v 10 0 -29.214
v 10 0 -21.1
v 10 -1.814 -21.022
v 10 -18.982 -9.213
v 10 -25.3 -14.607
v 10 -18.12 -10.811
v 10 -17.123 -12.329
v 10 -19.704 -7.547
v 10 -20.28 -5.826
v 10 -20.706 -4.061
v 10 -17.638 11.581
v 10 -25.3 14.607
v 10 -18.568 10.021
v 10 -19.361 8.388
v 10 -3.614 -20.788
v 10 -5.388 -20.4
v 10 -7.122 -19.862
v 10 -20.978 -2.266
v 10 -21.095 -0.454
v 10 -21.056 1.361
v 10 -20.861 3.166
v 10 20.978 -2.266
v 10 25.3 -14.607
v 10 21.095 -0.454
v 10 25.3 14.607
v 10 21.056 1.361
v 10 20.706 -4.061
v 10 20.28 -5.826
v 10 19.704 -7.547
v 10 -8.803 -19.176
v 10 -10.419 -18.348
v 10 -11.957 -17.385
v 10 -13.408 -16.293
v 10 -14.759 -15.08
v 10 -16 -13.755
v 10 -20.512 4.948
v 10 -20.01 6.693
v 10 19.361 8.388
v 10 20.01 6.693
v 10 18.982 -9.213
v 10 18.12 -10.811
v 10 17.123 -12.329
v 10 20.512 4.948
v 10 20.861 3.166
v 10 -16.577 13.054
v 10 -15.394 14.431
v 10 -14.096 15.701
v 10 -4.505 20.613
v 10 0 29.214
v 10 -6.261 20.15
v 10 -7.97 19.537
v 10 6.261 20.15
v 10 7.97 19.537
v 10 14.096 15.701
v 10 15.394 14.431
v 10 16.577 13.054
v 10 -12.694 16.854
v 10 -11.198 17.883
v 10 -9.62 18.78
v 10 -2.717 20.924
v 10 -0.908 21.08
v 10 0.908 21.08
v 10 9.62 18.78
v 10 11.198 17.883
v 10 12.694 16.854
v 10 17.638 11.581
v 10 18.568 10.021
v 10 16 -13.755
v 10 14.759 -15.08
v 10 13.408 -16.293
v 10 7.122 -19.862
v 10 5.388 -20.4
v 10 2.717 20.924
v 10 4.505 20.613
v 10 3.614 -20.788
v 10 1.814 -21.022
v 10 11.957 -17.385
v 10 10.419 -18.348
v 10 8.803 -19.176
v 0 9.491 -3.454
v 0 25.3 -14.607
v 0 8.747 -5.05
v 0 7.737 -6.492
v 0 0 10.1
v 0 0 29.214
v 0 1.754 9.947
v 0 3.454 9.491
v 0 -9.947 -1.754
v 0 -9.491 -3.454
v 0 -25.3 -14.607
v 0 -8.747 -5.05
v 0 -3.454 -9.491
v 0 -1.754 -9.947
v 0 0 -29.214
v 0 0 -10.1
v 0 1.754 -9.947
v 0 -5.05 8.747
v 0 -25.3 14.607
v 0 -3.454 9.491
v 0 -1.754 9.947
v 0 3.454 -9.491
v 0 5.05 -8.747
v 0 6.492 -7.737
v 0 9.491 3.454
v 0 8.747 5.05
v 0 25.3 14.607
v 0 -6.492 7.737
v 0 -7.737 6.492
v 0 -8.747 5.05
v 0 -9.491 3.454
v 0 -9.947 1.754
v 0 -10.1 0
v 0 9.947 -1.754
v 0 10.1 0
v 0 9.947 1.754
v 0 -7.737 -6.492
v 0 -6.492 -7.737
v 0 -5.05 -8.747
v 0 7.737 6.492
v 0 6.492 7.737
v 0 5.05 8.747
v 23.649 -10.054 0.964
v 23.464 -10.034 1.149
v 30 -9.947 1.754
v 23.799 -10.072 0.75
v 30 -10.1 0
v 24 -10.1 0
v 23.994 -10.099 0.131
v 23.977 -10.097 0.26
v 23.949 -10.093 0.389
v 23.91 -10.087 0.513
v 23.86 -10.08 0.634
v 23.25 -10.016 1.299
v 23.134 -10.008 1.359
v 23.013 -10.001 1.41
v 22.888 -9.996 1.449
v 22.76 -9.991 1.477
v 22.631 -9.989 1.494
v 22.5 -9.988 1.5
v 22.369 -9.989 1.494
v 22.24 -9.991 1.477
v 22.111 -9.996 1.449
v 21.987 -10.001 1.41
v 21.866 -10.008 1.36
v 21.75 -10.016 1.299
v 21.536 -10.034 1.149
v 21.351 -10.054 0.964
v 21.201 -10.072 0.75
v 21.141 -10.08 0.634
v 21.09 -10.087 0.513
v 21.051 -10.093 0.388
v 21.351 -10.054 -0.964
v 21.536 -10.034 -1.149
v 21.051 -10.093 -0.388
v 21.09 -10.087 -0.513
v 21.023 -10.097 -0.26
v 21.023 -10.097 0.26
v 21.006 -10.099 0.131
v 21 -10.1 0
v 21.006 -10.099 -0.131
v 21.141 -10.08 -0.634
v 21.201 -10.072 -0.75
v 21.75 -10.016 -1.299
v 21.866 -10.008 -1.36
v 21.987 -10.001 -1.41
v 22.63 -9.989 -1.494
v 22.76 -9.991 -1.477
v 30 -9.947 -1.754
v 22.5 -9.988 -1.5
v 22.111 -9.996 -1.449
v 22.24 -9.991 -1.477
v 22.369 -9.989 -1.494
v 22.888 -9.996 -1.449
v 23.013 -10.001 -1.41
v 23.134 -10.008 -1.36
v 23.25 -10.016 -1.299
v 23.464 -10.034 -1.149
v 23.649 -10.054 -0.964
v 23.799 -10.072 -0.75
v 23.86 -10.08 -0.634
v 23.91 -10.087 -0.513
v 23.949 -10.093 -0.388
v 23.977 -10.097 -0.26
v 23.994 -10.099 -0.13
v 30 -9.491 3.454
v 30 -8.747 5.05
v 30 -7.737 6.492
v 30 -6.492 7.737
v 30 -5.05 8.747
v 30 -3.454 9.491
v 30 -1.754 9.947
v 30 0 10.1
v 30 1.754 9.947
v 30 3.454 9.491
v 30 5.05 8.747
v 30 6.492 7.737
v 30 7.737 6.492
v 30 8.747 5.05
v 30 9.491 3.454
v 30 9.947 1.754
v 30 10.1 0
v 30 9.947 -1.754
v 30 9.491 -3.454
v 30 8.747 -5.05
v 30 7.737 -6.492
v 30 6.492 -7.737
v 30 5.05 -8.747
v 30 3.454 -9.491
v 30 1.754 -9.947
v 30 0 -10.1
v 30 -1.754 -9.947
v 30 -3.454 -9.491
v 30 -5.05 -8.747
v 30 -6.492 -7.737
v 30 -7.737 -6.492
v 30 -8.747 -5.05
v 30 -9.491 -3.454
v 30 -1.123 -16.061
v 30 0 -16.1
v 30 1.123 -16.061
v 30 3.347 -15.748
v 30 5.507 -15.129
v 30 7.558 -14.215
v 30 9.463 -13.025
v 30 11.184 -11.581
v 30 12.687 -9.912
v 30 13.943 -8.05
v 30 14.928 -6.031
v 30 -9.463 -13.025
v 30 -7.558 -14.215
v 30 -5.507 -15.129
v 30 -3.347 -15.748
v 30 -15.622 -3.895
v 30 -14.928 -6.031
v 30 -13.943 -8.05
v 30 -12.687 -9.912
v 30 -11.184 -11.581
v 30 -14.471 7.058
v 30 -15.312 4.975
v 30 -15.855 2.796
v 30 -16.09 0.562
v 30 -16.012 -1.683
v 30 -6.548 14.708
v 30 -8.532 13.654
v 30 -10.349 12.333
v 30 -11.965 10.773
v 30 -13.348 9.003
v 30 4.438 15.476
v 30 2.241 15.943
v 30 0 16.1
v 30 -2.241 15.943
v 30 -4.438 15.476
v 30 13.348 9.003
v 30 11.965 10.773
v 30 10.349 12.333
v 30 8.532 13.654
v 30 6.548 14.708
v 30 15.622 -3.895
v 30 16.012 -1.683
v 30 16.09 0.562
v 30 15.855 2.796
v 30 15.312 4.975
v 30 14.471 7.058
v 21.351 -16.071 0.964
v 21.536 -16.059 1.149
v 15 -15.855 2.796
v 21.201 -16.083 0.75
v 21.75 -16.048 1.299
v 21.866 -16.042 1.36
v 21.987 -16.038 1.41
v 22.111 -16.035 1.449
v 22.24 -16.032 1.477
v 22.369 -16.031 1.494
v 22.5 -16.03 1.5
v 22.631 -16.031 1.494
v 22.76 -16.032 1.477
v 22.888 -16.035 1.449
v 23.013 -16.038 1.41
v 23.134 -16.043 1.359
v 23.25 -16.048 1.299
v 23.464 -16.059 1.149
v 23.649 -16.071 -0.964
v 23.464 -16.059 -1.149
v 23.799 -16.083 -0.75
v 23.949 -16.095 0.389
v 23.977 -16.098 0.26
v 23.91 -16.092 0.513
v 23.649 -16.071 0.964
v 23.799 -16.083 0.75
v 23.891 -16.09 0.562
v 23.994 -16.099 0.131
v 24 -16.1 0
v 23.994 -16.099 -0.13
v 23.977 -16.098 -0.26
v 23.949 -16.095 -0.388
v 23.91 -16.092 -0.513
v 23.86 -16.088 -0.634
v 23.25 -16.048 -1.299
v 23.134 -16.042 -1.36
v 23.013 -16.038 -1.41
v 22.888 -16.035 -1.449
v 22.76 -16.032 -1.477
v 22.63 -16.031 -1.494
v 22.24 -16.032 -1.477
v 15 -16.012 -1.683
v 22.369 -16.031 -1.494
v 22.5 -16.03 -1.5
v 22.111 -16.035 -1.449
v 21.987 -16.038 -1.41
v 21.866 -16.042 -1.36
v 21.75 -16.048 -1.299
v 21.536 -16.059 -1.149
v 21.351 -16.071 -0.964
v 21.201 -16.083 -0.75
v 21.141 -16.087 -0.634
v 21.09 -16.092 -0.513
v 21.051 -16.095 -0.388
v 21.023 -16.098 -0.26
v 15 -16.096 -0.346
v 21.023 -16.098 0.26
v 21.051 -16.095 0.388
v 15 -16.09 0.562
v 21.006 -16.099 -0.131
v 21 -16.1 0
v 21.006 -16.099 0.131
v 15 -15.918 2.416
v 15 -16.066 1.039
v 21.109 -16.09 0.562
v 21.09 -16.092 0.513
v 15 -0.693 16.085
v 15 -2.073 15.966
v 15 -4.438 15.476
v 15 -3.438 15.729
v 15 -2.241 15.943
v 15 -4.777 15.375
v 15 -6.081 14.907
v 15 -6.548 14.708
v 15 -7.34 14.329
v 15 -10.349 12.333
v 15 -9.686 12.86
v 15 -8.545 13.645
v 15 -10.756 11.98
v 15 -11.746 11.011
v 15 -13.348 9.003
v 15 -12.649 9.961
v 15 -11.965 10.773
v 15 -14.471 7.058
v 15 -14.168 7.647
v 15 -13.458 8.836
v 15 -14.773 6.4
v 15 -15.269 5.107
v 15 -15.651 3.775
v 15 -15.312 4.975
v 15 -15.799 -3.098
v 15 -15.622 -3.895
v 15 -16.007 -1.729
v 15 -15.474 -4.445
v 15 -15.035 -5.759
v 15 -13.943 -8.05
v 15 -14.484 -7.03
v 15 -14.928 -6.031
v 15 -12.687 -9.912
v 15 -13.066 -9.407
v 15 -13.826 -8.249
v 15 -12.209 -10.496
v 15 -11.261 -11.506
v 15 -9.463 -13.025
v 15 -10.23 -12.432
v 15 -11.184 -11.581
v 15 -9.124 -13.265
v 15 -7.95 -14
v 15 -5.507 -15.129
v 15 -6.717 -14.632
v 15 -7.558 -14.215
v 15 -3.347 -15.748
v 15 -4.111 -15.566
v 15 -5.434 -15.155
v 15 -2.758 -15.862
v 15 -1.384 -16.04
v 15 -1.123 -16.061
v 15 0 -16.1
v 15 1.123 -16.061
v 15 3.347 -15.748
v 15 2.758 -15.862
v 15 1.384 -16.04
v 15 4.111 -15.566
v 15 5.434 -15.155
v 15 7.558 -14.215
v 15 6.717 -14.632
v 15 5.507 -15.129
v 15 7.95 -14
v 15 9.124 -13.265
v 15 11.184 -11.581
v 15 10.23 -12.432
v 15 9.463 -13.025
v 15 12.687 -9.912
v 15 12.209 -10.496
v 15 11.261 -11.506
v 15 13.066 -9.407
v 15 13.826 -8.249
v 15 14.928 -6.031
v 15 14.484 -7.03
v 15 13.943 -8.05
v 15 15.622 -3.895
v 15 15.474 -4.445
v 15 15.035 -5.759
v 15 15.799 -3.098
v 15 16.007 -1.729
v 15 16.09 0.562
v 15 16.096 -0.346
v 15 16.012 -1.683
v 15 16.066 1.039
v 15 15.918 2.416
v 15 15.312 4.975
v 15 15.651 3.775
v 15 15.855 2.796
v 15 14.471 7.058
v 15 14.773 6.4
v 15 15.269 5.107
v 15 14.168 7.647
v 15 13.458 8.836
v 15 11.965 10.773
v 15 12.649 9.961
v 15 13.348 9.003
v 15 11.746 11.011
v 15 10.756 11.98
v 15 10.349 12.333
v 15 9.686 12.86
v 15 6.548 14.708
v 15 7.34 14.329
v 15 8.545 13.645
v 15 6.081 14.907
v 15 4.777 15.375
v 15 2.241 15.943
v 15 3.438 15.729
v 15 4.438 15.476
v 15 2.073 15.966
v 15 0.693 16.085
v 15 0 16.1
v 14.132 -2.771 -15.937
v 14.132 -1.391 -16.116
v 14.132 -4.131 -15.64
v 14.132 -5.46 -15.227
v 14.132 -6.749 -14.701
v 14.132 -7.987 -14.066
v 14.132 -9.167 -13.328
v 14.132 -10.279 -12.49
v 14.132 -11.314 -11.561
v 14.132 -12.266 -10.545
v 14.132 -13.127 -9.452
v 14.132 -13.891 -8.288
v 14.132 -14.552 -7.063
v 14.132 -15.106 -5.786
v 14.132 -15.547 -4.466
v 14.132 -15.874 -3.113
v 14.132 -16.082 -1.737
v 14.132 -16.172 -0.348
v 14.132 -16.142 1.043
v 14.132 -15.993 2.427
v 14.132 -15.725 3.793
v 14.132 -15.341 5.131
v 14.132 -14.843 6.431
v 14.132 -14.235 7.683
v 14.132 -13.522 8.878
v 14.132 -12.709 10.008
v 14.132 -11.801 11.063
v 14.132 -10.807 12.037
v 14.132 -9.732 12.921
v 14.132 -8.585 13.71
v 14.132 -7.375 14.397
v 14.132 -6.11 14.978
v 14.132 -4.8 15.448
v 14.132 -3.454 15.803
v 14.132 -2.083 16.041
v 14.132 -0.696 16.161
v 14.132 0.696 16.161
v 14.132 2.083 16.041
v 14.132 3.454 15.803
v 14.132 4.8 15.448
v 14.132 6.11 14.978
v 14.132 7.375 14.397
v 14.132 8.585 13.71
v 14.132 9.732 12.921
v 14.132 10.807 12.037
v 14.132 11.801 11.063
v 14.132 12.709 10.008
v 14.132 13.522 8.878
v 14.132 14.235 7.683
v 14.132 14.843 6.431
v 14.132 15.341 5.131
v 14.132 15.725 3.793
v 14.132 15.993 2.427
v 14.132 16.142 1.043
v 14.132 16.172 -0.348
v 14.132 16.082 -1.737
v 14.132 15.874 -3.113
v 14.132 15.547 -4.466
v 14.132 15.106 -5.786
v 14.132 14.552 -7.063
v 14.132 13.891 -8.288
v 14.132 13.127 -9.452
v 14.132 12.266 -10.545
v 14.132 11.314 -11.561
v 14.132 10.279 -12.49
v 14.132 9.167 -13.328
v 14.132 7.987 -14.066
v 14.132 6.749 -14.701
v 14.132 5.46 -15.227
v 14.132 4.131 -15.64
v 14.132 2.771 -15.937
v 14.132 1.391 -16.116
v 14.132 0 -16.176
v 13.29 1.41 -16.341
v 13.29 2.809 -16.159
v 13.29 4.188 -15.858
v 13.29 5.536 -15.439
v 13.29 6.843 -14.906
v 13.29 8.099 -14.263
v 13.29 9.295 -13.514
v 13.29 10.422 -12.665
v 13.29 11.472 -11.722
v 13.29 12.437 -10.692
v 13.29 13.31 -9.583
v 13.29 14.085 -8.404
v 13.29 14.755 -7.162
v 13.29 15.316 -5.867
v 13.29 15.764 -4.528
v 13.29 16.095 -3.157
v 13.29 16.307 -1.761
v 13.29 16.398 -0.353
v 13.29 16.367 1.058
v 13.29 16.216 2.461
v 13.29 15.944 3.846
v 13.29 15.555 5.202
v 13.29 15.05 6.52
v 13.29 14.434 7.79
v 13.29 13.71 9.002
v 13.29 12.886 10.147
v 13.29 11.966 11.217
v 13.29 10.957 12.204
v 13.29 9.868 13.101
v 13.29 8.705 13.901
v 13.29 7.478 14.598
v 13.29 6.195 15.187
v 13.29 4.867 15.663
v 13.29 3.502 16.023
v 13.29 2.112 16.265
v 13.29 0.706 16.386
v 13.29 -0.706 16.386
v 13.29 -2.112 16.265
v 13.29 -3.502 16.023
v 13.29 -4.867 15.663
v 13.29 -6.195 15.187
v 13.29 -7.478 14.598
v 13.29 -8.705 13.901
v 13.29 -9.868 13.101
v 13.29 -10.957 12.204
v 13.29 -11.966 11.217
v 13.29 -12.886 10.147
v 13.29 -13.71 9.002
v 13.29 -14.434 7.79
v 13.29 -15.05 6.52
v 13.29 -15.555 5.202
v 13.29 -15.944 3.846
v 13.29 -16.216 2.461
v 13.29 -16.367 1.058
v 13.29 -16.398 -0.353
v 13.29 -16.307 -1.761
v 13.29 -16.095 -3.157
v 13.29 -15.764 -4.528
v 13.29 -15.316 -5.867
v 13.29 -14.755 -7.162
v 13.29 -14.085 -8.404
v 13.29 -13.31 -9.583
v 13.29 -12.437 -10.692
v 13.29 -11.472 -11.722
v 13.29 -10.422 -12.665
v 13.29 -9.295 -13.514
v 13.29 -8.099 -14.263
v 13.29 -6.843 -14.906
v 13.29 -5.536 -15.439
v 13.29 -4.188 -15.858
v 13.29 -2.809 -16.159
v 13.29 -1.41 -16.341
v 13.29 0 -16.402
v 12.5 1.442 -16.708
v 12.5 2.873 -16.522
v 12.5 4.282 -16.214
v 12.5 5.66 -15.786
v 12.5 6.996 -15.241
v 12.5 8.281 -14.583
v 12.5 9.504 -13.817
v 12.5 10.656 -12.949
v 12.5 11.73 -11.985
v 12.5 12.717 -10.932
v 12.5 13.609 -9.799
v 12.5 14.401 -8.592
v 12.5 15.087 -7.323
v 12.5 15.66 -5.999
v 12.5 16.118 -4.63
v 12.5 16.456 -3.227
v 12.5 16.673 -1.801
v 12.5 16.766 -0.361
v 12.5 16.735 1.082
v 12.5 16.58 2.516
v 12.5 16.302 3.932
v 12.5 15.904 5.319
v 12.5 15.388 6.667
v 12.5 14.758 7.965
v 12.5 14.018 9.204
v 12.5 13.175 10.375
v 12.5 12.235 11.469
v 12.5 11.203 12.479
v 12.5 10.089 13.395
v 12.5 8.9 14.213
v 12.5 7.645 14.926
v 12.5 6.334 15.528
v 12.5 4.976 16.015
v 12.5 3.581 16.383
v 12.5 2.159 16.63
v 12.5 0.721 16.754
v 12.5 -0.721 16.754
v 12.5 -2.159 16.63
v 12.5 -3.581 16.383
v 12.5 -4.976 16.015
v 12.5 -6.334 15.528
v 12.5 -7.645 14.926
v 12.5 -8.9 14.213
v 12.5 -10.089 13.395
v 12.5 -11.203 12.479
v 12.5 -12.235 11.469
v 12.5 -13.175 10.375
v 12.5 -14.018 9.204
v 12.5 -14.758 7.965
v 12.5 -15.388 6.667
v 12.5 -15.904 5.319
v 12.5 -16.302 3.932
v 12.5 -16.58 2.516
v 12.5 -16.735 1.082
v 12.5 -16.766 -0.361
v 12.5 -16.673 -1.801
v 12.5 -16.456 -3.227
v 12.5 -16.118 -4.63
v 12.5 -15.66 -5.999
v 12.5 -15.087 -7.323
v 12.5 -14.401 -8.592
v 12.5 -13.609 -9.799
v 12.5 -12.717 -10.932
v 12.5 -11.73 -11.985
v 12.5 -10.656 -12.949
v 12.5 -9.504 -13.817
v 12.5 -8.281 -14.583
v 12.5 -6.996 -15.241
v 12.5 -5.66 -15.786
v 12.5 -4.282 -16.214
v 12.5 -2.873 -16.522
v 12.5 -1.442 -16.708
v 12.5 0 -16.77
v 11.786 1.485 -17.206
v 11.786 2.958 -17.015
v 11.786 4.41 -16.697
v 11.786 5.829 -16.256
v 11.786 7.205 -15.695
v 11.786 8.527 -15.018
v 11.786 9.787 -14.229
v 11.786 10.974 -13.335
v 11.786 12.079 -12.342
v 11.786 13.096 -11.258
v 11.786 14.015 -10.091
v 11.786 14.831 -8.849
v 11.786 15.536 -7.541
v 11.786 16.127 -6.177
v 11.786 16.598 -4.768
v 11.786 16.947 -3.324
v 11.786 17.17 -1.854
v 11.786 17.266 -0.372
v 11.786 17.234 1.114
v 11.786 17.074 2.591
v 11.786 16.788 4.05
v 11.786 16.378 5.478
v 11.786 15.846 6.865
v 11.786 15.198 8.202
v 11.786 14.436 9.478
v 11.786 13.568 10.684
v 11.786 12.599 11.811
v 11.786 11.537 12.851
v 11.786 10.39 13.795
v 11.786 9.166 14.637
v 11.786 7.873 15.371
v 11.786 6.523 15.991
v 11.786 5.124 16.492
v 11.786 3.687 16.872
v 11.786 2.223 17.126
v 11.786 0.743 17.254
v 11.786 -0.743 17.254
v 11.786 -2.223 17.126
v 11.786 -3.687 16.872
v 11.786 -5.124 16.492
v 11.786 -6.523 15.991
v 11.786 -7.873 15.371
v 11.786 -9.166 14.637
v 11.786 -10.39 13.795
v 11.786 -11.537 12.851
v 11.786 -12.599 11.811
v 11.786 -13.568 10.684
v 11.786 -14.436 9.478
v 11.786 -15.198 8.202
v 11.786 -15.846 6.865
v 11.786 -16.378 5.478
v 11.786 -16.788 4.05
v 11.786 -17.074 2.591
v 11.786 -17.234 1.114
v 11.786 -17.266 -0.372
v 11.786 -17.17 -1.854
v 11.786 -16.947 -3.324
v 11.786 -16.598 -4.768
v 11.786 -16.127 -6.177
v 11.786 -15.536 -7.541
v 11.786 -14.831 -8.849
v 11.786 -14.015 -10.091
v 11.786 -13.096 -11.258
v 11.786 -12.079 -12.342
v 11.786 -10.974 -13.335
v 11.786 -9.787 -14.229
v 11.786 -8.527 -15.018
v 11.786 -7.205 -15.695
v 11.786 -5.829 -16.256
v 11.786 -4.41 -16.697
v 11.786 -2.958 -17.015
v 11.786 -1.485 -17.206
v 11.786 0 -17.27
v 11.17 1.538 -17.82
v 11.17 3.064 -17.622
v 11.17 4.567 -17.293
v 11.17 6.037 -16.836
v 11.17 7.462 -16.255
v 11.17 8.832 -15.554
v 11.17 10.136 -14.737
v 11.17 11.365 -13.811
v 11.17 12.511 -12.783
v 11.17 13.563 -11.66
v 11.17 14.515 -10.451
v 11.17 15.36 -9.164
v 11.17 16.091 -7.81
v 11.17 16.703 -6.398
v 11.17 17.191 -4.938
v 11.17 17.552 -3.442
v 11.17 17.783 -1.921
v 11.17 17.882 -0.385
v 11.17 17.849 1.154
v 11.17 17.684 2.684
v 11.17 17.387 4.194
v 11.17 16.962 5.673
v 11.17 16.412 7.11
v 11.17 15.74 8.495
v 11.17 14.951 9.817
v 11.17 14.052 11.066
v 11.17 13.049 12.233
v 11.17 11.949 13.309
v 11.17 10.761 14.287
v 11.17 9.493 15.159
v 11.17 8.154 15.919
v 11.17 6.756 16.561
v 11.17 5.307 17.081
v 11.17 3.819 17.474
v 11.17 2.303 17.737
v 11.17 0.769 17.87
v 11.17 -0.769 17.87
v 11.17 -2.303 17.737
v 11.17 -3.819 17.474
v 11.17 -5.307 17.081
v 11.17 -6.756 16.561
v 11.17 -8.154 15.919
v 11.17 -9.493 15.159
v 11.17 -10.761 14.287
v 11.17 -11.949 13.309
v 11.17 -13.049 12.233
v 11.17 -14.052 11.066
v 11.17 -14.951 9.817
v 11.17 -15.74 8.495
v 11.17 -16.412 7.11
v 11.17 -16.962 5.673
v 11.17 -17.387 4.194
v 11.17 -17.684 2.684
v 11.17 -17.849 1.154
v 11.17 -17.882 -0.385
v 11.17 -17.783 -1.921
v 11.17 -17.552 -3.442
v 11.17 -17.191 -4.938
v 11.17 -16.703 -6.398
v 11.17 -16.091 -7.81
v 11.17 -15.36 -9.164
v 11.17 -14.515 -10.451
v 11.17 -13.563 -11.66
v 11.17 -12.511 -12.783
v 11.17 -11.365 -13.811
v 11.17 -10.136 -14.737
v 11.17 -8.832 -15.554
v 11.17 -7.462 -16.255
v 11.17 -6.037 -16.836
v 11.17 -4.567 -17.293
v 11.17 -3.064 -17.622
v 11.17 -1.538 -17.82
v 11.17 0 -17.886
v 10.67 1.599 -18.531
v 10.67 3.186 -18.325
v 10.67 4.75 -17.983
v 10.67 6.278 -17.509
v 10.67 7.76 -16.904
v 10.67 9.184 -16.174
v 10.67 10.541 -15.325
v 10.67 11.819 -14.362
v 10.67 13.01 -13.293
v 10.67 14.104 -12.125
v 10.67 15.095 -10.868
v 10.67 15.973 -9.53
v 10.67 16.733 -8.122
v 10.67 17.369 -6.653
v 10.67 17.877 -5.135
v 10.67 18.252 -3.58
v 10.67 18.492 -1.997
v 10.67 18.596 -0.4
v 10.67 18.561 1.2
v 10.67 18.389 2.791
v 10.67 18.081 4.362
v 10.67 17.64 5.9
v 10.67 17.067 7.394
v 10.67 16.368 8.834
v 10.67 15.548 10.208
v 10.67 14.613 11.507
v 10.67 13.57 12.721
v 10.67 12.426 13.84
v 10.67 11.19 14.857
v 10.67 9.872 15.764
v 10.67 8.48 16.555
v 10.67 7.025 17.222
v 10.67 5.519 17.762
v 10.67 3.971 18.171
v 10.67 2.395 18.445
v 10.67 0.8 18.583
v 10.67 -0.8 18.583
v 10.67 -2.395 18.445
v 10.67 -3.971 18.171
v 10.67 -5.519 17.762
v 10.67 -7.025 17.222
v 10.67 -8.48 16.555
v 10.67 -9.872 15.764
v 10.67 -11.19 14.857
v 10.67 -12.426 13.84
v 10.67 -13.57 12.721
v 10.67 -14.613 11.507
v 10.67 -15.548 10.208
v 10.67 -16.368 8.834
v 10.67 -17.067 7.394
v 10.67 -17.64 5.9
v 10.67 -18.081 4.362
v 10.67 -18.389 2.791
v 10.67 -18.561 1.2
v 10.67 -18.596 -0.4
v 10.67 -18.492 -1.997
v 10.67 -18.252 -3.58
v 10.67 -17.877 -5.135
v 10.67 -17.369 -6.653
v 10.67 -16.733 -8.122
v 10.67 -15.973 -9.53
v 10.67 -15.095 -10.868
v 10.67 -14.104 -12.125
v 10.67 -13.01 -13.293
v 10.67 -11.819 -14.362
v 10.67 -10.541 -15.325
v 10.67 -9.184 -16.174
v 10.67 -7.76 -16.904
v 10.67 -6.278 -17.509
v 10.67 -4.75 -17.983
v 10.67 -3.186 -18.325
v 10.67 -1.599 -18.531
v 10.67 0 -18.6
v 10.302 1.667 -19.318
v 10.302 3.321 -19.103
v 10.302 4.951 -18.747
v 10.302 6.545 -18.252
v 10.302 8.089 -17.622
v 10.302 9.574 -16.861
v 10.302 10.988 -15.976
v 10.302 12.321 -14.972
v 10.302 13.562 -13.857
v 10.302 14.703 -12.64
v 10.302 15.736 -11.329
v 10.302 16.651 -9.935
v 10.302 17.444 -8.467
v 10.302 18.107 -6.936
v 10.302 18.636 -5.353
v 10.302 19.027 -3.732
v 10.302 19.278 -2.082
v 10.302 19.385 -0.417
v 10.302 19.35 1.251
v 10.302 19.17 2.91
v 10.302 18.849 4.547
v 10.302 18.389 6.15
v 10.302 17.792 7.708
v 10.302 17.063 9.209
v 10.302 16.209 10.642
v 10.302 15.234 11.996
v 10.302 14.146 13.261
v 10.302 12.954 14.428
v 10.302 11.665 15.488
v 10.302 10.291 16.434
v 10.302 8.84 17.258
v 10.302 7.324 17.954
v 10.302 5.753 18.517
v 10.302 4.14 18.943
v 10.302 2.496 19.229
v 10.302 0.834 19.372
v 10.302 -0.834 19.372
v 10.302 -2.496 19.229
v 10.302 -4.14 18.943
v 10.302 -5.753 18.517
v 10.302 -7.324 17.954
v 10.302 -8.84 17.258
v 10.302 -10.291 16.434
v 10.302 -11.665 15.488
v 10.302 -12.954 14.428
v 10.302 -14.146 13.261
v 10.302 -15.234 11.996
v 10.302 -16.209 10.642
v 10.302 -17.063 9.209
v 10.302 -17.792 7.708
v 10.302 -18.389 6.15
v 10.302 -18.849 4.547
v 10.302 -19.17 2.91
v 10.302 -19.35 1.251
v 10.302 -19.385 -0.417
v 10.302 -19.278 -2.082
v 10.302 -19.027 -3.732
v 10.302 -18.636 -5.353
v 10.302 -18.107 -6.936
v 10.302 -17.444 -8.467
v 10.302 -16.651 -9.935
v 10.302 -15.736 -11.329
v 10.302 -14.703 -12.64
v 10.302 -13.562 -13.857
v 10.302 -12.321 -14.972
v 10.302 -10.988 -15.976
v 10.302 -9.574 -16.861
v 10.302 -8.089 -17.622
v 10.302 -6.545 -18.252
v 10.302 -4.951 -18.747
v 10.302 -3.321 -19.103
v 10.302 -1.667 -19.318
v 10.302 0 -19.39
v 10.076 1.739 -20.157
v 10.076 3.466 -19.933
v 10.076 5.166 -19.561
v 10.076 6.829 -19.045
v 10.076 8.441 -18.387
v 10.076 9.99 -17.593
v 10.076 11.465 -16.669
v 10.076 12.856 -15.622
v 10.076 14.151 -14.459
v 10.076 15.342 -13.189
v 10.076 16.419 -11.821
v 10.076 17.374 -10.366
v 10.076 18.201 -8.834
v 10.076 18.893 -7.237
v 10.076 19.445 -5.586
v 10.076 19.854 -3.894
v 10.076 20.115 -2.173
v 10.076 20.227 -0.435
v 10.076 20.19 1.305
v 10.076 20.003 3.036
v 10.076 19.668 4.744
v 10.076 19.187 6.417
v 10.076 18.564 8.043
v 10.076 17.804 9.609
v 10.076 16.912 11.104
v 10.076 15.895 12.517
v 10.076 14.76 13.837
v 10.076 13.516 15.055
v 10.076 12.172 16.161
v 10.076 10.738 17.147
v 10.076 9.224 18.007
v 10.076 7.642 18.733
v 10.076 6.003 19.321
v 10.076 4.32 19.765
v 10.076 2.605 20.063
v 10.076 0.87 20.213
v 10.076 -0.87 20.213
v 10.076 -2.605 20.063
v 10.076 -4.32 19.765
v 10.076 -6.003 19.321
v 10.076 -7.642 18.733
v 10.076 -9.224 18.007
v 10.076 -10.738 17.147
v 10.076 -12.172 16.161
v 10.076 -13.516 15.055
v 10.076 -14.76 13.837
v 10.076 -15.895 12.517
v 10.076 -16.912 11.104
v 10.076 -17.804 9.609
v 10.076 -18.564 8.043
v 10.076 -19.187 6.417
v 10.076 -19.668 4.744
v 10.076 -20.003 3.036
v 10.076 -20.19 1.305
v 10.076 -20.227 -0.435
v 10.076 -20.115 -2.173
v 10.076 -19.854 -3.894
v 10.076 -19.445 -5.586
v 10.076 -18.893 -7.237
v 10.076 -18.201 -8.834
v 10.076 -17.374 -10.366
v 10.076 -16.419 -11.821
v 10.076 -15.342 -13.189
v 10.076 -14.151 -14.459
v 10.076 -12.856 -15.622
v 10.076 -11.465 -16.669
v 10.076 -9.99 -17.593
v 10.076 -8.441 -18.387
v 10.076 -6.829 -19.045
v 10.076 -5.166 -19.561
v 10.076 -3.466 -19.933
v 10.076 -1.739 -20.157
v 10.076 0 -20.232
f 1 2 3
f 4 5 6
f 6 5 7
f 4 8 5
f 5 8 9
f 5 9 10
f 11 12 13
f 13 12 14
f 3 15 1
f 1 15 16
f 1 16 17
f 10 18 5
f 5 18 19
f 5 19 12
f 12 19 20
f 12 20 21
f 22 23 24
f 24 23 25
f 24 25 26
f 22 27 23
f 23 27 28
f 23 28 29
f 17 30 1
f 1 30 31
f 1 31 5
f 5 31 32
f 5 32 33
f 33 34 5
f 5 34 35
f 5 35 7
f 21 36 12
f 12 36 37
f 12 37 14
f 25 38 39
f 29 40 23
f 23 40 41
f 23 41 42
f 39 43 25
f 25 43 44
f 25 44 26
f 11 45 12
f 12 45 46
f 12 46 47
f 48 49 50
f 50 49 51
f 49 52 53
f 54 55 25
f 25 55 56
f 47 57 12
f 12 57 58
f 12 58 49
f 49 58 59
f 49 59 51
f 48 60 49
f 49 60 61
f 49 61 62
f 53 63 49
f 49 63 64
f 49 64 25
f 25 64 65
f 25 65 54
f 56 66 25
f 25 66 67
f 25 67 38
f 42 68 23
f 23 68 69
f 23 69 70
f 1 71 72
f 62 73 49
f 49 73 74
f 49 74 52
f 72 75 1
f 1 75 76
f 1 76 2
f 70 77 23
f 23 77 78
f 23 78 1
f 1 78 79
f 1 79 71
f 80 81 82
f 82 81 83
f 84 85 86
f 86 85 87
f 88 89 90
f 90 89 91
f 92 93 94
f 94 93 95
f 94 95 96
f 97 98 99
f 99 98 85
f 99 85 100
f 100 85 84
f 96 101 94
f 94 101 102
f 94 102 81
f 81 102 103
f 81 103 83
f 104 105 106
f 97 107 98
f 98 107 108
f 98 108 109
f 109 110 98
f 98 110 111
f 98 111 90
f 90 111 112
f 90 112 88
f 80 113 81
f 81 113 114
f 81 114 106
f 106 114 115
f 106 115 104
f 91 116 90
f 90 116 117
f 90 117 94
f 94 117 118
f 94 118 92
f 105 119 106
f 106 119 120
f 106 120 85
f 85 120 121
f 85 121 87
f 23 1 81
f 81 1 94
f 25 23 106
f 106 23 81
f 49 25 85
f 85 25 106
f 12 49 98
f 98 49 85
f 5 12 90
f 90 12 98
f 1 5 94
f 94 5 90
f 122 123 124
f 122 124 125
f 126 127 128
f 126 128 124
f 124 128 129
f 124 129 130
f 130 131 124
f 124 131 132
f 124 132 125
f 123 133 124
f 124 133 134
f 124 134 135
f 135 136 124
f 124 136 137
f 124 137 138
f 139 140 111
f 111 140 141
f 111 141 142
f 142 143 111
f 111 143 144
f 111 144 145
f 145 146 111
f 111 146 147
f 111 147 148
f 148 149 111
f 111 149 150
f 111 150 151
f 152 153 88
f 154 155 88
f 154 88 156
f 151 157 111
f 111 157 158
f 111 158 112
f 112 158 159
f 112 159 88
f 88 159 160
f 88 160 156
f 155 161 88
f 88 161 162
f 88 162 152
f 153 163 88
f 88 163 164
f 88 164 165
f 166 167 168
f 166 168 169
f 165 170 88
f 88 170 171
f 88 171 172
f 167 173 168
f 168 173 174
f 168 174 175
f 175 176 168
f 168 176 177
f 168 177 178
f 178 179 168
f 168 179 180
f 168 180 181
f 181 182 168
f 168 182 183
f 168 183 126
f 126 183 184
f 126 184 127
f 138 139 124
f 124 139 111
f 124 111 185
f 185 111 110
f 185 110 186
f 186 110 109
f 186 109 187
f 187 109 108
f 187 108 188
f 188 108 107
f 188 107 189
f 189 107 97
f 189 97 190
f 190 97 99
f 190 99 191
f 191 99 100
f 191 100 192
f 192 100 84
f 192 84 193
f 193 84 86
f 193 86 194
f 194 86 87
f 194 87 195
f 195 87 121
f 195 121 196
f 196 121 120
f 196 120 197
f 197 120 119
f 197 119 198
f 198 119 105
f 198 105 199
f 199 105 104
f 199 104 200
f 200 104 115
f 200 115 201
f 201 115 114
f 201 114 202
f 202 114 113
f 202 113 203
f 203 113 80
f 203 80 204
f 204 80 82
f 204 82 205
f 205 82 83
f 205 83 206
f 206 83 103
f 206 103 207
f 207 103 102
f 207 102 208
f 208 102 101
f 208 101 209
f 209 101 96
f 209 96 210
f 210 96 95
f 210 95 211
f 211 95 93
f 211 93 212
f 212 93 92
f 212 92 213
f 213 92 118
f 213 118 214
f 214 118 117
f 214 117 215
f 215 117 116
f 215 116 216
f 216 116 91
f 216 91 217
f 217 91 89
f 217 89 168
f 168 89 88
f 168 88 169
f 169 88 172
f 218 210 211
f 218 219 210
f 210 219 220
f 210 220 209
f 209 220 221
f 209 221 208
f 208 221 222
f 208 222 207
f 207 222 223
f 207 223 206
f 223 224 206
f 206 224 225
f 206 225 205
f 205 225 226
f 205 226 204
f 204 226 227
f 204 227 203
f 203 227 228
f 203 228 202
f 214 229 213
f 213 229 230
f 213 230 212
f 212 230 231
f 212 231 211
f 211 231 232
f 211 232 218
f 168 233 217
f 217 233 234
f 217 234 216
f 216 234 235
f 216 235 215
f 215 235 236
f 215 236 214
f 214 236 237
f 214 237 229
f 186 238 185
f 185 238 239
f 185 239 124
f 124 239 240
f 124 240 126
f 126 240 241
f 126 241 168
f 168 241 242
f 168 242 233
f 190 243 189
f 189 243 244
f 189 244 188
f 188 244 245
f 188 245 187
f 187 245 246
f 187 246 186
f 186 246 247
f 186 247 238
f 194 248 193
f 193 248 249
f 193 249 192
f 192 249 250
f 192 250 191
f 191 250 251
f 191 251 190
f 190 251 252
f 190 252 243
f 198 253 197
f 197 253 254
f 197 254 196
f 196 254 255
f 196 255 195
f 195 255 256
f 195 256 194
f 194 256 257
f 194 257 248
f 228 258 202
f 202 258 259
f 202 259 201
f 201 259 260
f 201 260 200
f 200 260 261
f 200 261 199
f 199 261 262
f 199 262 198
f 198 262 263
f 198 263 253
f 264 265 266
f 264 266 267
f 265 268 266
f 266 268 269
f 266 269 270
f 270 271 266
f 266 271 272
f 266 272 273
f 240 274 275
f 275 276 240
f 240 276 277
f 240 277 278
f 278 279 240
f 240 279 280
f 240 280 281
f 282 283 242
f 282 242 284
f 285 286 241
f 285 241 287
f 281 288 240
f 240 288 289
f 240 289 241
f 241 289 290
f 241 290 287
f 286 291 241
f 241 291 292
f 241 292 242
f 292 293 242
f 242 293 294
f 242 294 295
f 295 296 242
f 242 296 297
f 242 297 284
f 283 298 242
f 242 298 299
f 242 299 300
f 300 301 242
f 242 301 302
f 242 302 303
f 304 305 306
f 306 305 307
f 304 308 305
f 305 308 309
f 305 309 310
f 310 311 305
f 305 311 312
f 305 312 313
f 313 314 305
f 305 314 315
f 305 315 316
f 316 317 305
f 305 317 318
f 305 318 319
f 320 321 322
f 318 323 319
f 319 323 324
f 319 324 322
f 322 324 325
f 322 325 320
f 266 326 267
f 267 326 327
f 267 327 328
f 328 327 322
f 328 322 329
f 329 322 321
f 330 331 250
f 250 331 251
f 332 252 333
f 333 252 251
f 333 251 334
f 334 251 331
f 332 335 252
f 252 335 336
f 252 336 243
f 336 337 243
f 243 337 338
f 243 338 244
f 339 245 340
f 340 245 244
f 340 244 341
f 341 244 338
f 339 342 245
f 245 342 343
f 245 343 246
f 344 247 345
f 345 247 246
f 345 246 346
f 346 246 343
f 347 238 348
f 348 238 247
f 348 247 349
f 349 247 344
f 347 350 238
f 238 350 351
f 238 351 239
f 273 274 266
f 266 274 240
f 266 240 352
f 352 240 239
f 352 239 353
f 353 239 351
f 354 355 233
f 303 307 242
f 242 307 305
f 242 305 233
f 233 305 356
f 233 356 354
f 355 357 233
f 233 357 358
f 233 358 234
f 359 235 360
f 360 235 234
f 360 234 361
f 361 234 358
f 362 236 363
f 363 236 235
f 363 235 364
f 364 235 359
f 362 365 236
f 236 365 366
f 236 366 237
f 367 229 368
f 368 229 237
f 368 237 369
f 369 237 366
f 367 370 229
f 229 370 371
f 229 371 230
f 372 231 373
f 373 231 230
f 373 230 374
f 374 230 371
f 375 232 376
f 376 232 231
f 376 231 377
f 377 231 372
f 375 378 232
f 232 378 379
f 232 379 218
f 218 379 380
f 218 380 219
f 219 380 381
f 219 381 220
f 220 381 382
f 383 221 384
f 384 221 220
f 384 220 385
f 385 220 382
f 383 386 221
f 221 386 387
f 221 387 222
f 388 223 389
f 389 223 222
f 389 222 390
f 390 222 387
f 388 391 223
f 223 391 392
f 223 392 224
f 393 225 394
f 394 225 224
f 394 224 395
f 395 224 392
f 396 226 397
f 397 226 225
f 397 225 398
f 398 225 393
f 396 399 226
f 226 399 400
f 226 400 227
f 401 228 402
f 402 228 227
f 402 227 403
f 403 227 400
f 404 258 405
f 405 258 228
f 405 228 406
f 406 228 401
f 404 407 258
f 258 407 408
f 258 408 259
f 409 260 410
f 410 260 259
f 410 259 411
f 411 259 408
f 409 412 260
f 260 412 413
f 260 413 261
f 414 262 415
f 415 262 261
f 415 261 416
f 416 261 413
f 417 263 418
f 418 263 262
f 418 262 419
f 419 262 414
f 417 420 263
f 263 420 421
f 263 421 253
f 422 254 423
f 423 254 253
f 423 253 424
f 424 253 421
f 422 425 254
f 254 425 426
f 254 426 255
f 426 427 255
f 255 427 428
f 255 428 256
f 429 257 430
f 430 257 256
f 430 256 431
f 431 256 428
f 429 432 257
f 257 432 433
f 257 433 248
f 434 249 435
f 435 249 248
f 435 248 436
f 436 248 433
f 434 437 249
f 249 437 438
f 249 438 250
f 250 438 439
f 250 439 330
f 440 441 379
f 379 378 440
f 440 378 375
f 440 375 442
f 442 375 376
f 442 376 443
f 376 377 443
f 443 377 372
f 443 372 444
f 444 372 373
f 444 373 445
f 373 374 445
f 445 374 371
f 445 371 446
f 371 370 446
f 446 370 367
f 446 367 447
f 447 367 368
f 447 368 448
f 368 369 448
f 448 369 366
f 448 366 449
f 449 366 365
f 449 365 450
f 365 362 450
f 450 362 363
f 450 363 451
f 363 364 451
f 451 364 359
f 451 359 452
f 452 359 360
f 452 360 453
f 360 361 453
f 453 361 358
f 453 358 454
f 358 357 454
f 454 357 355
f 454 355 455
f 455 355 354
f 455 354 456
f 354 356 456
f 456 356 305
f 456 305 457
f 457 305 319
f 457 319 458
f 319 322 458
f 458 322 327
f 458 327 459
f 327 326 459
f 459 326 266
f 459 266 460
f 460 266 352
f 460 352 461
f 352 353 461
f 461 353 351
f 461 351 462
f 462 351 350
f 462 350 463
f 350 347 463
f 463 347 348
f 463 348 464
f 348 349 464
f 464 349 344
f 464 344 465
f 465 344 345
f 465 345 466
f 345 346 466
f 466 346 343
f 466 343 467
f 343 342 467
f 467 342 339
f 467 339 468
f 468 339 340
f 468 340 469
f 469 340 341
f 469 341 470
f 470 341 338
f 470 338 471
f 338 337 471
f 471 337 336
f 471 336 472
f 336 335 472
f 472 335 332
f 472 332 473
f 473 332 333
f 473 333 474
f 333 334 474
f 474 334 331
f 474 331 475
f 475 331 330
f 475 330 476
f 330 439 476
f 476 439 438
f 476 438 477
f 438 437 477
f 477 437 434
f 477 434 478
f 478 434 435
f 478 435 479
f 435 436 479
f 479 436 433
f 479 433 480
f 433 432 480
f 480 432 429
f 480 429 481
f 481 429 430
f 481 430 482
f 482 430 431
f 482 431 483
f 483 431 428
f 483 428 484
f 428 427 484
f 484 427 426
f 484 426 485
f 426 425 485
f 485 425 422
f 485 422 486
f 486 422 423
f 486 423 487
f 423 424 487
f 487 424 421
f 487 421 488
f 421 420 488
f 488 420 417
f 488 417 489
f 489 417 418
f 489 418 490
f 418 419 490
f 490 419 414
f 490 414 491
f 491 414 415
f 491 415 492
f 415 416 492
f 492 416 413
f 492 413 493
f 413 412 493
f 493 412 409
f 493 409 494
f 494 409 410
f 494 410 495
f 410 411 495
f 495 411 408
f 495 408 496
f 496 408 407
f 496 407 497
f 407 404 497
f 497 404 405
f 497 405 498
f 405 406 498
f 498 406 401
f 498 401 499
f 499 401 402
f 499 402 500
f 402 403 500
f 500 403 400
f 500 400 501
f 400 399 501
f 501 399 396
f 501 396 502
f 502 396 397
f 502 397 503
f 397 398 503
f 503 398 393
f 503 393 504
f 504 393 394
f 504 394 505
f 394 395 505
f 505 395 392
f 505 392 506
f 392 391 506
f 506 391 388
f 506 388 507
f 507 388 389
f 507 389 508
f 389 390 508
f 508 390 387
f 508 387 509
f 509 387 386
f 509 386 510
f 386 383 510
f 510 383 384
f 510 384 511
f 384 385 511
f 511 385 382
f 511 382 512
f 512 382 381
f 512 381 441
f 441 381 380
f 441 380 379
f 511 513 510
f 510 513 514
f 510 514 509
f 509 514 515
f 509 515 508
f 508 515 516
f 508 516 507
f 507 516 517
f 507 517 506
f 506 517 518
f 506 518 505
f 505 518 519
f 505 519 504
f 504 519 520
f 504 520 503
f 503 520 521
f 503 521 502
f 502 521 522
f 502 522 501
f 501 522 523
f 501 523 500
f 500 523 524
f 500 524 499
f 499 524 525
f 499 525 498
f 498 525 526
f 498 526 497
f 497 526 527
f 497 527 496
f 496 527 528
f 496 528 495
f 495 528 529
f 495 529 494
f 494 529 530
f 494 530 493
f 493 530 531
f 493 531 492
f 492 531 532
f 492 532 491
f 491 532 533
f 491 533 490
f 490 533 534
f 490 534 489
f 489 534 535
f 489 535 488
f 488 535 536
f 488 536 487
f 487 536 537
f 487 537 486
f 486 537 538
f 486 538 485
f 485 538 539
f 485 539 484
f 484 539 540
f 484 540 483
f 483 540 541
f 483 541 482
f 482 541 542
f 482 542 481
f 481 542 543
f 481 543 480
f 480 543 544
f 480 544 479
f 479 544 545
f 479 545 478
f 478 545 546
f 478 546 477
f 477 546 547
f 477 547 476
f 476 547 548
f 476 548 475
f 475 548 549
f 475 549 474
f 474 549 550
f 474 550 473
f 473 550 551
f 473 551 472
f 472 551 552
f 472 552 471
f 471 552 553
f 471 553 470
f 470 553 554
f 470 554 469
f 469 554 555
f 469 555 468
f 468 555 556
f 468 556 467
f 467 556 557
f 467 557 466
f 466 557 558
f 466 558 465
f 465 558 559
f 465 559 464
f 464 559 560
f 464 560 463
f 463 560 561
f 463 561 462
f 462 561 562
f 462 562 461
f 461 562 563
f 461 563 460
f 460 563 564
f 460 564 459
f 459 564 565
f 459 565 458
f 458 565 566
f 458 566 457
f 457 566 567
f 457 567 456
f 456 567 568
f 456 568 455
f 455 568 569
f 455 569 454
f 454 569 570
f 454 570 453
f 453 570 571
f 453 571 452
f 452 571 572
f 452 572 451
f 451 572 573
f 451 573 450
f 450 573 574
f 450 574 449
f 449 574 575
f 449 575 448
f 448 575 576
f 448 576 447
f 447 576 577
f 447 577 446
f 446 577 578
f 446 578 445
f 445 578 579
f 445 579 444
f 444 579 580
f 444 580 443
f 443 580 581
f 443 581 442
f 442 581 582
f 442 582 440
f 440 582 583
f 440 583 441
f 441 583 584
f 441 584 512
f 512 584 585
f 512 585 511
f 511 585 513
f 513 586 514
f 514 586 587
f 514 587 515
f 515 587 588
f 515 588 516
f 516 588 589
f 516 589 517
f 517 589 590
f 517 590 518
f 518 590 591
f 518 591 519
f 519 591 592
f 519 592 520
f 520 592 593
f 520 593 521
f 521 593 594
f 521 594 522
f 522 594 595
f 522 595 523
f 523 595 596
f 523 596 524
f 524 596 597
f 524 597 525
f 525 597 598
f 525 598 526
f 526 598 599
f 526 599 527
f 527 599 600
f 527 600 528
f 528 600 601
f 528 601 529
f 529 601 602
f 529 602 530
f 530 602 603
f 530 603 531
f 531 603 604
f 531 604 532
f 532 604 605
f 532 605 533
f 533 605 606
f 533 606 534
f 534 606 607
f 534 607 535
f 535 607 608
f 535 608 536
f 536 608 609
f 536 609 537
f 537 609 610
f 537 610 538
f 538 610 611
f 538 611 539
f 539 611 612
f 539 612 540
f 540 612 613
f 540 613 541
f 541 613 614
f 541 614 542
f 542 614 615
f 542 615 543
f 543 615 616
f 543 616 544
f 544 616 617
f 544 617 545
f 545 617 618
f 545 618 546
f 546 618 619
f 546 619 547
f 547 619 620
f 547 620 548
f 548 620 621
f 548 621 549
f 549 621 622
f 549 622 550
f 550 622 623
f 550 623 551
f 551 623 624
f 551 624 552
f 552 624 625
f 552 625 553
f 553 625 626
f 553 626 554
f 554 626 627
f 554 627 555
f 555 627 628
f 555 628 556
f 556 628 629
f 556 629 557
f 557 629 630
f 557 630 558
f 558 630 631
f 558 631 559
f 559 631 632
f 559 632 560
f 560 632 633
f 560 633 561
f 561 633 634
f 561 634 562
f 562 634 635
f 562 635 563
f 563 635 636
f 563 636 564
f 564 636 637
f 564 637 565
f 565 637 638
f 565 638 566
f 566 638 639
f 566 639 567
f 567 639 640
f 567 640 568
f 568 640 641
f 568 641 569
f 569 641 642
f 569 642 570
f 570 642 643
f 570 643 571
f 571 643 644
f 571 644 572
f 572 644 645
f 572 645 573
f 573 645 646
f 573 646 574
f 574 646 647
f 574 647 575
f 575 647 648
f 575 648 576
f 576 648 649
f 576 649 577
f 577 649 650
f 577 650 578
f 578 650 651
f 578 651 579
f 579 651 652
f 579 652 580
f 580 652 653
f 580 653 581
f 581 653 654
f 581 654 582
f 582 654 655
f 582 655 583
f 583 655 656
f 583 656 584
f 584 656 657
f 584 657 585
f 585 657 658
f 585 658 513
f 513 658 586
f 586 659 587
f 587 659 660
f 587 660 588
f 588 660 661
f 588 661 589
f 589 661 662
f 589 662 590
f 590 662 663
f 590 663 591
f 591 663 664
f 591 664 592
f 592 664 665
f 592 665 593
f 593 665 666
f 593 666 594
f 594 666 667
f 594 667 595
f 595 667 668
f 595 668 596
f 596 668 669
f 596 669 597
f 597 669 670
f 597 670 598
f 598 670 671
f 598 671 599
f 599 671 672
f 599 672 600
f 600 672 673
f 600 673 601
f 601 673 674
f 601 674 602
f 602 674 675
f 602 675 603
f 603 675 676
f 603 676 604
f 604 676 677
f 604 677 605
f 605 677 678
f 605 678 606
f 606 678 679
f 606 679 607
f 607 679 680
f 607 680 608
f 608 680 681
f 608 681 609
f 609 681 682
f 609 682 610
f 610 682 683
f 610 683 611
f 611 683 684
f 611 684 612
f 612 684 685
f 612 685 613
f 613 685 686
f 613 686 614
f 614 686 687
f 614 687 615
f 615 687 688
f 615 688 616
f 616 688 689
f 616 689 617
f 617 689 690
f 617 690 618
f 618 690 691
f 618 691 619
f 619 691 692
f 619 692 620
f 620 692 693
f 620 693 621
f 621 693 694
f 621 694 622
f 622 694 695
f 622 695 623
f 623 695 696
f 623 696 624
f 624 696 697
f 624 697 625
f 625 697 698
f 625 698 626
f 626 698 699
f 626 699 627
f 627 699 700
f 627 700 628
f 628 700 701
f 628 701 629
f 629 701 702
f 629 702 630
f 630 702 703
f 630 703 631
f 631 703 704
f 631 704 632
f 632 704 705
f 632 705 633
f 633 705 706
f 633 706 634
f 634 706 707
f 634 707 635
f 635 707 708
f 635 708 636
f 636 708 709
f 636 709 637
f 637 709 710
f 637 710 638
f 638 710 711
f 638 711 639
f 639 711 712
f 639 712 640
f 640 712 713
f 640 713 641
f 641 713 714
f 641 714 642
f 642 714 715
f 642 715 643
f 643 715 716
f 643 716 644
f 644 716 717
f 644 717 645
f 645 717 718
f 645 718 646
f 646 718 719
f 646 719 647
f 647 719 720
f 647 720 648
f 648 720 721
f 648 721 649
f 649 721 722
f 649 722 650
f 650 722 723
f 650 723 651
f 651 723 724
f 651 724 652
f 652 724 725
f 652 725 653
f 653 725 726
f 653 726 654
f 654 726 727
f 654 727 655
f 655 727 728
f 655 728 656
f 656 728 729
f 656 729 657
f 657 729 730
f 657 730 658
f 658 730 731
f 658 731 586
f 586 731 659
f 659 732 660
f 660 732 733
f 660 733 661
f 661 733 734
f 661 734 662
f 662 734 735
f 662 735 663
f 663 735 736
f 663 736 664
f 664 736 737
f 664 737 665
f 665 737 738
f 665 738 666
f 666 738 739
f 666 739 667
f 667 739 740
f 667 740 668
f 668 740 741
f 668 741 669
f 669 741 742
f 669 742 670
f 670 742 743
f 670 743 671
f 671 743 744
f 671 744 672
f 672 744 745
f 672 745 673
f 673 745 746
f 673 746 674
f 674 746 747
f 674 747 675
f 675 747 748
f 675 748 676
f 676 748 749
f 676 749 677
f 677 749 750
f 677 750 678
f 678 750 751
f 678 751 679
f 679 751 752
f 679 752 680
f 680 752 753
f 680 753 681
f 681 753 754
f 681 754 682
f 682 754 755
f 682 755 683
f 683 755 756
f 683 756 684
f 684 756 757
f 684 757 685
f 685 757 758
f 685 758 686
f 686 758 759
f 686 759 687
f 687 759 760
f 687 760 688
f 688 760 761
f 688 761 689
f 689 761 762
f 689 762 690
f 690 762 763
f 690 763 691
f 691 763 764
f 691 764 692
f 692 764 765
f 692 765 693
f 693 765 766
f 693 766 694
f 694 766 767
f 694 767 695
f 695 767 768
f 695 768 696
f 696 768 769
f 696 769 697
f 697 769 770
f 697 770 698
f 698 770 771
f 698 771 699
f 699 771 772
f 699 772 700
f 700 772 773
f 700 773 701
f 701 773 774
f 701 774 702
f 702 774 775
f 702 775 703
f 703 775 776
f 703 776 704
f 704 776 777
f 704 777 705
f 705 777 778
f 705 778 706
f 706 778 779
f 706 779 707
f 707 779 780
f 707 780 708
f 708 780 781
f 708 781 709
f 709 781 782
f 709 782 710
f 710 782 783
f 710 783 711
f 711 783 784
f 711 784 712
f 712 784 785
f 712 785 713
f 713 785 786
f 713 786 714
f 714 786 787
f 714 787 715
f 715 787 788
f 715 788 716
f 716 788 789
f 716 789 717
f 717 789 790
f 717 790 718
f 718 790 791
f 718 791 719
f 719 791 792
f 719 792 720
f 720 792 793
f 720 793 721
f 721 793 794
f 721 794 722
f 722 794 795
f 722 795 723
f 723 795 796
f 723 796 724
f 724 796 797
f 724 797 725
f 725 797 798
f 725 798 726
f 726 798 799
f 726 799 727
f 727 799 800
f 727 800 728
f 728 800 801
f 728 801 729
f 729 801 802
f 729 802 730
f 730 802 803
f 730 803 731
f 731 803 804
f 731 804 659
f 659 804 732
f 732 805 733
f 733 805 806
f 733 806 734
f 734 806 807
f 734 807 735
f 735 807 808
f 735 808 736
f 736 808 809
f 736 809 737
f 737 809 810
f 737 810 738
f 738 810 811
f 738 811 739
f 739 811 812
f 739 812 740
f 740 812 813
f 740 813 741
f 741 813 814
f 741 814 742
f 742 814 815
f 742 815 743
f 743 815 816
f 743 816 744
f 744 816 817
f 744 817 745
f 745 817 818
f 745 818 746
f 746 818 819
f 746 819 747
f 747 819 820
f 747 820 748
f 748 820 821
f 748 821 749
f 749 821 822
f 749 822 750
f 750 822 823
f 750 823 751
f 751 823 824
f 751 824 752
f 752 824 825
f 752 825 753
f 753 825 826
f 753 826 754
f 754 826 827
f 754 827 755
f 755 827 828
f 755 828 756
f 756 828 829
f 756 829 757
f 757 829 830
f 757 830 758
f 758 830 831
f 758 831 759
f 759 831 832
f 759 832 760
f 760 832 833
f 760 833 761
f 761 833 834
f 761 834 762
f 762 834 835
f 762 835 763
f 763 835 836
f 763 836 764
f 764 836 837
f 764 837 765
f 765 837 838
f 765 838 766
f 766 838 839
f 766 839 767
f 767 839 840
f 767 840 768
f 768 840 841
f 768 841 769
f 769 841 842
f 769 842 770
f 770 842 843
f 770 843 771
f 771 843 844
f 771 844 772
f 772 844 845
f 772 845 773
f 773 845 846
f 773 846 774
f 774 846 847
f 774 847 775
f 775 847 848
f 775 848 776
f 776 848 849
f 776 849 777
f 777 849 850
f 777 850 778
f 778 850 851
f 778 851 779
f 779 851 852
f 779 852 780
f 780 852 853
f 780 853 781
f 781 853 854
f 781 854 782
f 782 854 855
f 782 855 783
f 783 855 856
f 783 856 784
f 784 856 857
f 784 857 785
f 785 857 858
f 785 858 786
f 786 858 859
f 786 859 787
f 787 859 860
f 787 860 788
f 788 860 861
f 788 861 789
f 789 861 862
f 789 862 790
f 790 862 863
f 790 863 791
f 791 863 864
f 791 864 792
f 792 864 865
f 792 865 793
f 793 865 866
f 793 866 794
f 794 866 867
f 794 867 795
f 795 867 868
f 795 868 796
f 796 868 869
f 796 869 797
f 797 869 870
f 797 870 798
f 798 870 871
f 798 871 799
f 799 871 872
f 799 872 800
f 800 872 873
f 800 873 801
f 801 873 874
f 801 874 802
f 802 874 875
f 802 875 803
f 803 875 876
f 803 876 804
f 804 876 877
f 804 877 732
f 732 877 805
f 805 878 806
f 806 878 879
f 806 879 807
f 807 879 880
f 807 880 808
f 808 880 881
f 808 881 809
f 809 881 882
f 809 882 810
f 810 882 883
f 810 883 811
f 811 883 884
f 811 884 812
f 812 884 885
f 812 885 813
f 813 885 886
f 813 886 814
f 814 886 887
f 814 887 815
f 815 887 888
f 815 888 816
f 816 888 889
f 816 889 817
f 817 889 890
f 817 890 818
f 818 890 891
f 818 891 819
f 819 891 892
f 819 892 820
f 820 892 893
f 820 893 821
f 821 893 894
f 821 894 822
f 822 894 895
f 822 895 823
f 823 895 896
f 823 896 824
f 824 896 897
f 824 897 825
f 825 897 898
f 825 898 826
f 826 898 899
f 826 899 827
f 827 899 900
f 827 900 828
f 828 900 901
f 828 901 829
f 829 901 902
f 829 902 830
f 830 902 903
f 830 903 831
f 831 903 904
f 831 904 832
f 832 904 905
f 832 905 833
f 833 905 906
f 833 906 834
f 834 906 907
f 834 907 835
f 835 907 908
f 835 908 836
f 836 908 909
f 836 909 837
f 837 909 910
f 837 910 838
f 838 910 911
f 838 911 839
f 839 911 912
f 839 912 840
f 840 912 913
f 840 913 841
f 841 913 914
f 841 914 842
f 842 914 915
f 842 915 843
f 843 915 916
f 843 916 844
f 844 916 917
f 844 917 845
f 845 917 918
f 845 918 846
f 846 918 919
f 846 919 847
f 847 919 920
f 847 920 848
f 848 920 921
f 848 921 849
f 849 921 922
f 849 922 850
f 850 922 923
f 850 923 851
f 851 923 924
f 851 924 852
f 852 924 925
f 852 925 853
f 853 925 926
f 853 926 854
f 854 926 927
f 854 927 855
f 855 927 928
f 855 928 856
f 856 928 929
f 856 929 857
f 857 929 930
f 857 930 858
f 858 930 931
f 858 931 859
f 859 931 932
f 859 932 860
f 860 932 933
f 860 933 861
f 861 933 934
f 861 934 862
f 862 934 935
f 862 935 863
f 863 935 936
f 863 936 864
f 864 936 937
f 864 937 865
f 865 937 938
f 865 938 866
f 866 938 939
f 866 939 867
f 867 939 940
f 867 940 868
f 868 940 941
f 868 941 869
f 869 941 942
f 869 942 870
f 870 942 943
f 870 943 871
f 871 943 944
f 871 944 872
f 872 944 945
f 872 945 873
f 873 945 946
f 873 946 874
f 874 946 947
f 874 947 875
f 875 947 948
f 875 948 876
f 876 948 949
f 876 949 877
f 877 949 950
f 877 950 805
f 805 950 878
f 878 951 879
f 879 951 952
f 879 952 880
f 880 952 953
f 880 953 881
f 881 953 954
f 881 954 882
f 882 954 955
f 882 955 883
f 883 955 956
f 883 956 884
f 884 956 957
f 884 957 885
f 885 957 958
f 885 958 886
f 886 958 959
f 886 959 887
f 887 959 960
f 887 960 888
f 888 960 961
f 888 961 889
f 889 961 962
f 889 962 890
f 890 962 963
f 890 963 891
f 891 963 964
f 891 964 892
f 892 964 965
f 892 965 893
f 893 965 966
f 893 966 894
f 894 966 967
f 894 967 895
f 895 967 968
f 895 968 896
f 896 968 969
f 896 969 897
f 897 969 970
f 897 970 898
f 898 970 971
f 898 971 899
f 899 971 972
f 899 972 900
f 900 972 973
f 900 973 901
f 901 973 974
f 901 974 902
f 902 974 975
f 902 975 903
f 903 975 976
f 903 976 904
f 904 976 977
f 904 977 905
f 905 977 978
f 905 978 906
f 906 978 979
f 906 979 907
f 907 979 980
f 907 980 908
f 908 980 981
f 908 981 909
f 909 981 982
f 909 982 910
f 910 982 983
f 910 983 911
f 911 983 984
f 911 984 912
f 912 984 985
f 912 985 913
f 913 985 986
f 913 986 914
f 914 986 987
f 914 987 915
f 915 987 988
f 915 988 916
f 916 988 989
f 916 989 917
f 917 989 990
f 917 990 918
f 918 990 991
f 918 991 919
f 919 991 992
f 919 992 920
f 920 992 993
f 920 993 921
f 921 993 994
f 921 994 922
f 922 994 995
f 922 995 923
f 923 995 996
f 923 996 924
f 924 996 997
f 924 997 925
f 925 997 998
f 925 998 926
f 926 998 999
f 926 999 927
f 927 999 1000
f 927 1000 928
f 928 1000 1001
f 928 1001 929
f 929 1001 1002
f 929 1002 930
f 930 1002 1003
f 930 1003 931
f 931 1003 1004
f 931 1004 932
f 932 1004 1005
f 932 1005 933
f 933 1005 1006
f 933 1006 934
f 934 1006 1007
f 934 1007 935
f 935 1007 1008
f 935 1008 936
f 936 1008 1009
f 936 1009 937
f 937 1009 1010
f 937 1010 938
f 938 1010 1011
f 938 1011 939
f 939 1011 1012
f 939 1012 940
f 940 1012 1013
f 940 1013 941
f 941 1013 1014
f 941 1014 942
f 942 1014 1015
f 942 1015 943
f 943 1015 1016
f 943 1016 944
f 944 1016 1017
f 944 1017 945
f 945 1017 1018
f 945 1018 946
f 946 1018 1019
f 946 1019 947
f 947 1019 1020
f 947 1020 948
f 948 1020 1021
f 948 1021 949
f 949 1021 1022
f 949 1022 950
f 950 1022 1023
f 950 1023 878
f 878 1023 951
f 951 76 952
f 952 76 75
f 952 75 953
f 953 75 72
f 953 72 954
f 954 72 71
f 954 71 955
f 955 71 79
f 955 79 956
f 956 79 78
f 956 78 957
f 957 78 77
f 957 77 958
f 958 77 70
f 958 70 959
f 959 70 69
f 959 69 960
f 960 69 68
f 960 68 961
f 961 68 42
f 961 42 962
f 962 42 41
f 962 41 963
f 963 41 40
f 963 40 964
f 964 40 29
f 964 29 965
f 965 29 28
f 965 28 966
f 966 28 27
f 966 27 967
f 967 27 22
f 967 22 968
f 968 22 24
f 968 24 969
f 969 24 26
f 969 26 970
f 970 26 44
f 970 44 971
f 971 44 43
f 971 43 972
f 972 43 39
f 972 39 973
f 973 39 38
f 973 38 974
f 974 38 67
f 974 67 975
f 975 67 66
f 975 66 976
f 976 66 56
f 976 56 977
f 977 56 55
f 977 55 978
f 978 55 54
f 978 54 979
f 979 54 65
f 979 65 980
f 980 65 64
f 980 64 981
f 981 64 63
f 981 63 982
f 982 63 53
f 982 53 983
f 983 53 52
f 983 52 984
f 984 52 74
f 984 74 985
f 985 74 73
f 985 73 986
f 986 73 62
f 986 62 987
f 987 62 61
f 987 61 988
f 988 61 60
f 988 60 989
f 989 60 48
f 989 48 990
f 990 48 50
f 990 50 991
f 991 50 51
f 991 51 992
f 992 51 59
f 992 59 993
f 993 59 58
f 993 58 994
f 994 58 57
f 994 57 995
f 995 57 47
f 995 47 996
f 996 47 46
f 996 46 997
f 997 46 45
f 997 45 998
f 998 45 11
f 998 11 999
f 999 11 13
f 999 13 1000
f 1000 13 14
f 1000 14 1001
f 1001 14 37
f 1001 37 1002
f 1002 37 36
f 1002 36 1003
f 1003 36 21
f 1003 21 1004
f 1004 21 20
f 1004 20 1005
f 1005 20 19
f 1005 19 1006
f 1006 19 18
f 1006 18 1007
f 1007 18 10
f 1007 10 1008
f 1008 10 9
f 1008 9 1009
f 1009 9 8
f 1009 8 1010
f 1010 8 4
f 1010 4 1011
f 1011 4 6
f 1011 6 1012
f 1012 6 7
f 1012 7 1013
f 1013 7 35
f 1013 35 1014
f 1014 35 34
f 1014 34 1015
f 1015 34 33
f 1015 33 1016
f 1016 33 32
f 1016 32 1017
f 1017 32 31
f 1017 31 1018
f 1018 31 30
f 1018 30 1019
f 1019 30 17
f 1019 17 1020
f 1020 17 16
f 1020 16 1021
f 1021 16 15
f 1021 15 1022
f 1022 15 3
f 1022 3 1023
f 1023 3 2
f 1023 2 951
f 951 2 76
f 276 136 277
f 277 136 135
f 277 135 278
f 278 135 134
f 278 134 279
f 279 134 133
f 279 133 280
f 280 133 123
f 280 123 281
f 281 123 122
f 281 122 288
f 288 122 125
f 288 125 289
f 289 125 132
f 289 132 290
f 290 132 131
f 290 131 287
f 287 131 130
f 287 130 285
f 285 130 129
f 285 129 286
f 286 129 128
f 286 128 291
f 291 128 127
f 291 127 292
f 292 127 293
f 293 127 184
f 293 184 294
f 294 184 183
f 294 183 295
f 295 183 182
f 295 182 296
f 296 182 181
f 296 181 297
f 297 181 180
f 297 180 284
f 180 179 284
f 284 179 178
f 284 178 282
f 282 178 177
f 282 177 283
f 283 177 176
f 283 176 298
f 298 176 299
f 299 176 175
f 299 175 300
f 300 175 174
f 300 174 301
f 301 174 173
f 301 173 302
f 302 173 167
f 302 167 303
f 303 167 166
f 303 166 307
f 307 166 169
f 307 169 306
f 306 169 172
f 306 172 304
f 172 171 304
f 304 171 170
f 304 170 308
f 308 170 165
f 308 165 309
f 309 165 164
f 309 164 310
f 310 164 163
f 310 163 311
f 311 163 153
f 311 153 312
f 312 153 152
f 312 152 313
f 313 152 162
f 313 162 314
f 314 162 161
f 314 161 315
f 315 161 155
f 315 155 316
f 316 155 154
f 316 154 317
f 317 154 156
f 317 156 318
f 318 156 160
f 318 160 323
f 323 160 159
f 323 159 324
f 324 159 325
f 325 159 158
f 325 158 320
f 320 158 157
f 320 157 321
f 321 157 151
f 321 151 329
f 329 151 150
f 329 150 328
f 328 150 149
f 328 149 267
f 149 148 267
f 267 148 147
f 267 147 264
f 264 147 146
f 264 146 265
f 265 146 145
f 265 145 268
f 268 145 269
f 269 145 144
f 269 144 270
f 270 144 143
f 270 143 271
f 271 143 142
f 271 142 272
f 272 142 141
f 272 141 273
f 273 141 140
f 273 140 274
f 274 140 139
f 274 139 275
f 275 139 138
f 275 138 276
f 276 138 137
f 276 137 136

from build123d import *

# Parameters (mm, degrees)
SKETCH1_R           = 10.1
BOSS_EXTRUDE1_DEPTH = 10
SKETCH2_R           = 16.1
SKETCH2_R_2         = 10.1
BOSS_EXTRUDE2_DEPTH = 20
FILLET1_R           = 5
CUT_EXTRUDE1_DEPTH  = 20


with BuildPart() as part:
    # Sketch1 → Boss-Extrude1 (new body)
    with BuildSketch(Plane(origin=(0, 0, 0), x_dir=(0, 0, -1), z_dir=(1, 0, 0))):
        Polygon((14.60696181, 25.3), (-14.60696181, 25.3), (-29.213923621, 0), (-14.60696181, -25.3), (14.60696181, -25.3), (29.213923621, 0), align=None)
        Circle(SKETCH1_R, mode=Mode.SUBTRACT)
    extrude(amount=BOSS_EXTRUDE1_DEPTH)

    # Sketch2 → Boss-Extrude2 (add)
    with BuildSketch(Plane(origin=(10, 0, 0), x_dir=(0, 0, -1), z_dir=(1, 0, 0))):
        Circle(SKETCH2_R)
        Circle(SKETCH2_R_2, mode=Mode.SUBTRACT)
    extrude(amount=BOSS_EXTRUDE2_DEPTH)

    # Fillet1
    fillet1_edges = [part.edges().sort_by_distance(p)[0] for p in [
        (10, 0, 16.1),
    ]]
    fillet(fillet1_edges, radius=FILLET1_R)

    # Sketch3 → Cut-Extrude1 (cut)
    with BuildSketch(Plane(origin=(0, 0, 0), x_dir=(1, 0, 0), z_dir=(0, 1, 0))):
        with BuildLine():
            ThreePointArc((21, 0), (22.5, -1.5), (24, 0))
            Line((24, 0), (21, 0))
        make_face()
        with BuildLine():
            Line((21, 0), (24, 0))
            ThreePointArc((24, 0), (22.5, 1.5), (21, 0))
        make_face()
    extrude(amount=-CUT_EXTRUDE1_DEPTH, mode=Mode.SUBTRACT)


solid = part.part
